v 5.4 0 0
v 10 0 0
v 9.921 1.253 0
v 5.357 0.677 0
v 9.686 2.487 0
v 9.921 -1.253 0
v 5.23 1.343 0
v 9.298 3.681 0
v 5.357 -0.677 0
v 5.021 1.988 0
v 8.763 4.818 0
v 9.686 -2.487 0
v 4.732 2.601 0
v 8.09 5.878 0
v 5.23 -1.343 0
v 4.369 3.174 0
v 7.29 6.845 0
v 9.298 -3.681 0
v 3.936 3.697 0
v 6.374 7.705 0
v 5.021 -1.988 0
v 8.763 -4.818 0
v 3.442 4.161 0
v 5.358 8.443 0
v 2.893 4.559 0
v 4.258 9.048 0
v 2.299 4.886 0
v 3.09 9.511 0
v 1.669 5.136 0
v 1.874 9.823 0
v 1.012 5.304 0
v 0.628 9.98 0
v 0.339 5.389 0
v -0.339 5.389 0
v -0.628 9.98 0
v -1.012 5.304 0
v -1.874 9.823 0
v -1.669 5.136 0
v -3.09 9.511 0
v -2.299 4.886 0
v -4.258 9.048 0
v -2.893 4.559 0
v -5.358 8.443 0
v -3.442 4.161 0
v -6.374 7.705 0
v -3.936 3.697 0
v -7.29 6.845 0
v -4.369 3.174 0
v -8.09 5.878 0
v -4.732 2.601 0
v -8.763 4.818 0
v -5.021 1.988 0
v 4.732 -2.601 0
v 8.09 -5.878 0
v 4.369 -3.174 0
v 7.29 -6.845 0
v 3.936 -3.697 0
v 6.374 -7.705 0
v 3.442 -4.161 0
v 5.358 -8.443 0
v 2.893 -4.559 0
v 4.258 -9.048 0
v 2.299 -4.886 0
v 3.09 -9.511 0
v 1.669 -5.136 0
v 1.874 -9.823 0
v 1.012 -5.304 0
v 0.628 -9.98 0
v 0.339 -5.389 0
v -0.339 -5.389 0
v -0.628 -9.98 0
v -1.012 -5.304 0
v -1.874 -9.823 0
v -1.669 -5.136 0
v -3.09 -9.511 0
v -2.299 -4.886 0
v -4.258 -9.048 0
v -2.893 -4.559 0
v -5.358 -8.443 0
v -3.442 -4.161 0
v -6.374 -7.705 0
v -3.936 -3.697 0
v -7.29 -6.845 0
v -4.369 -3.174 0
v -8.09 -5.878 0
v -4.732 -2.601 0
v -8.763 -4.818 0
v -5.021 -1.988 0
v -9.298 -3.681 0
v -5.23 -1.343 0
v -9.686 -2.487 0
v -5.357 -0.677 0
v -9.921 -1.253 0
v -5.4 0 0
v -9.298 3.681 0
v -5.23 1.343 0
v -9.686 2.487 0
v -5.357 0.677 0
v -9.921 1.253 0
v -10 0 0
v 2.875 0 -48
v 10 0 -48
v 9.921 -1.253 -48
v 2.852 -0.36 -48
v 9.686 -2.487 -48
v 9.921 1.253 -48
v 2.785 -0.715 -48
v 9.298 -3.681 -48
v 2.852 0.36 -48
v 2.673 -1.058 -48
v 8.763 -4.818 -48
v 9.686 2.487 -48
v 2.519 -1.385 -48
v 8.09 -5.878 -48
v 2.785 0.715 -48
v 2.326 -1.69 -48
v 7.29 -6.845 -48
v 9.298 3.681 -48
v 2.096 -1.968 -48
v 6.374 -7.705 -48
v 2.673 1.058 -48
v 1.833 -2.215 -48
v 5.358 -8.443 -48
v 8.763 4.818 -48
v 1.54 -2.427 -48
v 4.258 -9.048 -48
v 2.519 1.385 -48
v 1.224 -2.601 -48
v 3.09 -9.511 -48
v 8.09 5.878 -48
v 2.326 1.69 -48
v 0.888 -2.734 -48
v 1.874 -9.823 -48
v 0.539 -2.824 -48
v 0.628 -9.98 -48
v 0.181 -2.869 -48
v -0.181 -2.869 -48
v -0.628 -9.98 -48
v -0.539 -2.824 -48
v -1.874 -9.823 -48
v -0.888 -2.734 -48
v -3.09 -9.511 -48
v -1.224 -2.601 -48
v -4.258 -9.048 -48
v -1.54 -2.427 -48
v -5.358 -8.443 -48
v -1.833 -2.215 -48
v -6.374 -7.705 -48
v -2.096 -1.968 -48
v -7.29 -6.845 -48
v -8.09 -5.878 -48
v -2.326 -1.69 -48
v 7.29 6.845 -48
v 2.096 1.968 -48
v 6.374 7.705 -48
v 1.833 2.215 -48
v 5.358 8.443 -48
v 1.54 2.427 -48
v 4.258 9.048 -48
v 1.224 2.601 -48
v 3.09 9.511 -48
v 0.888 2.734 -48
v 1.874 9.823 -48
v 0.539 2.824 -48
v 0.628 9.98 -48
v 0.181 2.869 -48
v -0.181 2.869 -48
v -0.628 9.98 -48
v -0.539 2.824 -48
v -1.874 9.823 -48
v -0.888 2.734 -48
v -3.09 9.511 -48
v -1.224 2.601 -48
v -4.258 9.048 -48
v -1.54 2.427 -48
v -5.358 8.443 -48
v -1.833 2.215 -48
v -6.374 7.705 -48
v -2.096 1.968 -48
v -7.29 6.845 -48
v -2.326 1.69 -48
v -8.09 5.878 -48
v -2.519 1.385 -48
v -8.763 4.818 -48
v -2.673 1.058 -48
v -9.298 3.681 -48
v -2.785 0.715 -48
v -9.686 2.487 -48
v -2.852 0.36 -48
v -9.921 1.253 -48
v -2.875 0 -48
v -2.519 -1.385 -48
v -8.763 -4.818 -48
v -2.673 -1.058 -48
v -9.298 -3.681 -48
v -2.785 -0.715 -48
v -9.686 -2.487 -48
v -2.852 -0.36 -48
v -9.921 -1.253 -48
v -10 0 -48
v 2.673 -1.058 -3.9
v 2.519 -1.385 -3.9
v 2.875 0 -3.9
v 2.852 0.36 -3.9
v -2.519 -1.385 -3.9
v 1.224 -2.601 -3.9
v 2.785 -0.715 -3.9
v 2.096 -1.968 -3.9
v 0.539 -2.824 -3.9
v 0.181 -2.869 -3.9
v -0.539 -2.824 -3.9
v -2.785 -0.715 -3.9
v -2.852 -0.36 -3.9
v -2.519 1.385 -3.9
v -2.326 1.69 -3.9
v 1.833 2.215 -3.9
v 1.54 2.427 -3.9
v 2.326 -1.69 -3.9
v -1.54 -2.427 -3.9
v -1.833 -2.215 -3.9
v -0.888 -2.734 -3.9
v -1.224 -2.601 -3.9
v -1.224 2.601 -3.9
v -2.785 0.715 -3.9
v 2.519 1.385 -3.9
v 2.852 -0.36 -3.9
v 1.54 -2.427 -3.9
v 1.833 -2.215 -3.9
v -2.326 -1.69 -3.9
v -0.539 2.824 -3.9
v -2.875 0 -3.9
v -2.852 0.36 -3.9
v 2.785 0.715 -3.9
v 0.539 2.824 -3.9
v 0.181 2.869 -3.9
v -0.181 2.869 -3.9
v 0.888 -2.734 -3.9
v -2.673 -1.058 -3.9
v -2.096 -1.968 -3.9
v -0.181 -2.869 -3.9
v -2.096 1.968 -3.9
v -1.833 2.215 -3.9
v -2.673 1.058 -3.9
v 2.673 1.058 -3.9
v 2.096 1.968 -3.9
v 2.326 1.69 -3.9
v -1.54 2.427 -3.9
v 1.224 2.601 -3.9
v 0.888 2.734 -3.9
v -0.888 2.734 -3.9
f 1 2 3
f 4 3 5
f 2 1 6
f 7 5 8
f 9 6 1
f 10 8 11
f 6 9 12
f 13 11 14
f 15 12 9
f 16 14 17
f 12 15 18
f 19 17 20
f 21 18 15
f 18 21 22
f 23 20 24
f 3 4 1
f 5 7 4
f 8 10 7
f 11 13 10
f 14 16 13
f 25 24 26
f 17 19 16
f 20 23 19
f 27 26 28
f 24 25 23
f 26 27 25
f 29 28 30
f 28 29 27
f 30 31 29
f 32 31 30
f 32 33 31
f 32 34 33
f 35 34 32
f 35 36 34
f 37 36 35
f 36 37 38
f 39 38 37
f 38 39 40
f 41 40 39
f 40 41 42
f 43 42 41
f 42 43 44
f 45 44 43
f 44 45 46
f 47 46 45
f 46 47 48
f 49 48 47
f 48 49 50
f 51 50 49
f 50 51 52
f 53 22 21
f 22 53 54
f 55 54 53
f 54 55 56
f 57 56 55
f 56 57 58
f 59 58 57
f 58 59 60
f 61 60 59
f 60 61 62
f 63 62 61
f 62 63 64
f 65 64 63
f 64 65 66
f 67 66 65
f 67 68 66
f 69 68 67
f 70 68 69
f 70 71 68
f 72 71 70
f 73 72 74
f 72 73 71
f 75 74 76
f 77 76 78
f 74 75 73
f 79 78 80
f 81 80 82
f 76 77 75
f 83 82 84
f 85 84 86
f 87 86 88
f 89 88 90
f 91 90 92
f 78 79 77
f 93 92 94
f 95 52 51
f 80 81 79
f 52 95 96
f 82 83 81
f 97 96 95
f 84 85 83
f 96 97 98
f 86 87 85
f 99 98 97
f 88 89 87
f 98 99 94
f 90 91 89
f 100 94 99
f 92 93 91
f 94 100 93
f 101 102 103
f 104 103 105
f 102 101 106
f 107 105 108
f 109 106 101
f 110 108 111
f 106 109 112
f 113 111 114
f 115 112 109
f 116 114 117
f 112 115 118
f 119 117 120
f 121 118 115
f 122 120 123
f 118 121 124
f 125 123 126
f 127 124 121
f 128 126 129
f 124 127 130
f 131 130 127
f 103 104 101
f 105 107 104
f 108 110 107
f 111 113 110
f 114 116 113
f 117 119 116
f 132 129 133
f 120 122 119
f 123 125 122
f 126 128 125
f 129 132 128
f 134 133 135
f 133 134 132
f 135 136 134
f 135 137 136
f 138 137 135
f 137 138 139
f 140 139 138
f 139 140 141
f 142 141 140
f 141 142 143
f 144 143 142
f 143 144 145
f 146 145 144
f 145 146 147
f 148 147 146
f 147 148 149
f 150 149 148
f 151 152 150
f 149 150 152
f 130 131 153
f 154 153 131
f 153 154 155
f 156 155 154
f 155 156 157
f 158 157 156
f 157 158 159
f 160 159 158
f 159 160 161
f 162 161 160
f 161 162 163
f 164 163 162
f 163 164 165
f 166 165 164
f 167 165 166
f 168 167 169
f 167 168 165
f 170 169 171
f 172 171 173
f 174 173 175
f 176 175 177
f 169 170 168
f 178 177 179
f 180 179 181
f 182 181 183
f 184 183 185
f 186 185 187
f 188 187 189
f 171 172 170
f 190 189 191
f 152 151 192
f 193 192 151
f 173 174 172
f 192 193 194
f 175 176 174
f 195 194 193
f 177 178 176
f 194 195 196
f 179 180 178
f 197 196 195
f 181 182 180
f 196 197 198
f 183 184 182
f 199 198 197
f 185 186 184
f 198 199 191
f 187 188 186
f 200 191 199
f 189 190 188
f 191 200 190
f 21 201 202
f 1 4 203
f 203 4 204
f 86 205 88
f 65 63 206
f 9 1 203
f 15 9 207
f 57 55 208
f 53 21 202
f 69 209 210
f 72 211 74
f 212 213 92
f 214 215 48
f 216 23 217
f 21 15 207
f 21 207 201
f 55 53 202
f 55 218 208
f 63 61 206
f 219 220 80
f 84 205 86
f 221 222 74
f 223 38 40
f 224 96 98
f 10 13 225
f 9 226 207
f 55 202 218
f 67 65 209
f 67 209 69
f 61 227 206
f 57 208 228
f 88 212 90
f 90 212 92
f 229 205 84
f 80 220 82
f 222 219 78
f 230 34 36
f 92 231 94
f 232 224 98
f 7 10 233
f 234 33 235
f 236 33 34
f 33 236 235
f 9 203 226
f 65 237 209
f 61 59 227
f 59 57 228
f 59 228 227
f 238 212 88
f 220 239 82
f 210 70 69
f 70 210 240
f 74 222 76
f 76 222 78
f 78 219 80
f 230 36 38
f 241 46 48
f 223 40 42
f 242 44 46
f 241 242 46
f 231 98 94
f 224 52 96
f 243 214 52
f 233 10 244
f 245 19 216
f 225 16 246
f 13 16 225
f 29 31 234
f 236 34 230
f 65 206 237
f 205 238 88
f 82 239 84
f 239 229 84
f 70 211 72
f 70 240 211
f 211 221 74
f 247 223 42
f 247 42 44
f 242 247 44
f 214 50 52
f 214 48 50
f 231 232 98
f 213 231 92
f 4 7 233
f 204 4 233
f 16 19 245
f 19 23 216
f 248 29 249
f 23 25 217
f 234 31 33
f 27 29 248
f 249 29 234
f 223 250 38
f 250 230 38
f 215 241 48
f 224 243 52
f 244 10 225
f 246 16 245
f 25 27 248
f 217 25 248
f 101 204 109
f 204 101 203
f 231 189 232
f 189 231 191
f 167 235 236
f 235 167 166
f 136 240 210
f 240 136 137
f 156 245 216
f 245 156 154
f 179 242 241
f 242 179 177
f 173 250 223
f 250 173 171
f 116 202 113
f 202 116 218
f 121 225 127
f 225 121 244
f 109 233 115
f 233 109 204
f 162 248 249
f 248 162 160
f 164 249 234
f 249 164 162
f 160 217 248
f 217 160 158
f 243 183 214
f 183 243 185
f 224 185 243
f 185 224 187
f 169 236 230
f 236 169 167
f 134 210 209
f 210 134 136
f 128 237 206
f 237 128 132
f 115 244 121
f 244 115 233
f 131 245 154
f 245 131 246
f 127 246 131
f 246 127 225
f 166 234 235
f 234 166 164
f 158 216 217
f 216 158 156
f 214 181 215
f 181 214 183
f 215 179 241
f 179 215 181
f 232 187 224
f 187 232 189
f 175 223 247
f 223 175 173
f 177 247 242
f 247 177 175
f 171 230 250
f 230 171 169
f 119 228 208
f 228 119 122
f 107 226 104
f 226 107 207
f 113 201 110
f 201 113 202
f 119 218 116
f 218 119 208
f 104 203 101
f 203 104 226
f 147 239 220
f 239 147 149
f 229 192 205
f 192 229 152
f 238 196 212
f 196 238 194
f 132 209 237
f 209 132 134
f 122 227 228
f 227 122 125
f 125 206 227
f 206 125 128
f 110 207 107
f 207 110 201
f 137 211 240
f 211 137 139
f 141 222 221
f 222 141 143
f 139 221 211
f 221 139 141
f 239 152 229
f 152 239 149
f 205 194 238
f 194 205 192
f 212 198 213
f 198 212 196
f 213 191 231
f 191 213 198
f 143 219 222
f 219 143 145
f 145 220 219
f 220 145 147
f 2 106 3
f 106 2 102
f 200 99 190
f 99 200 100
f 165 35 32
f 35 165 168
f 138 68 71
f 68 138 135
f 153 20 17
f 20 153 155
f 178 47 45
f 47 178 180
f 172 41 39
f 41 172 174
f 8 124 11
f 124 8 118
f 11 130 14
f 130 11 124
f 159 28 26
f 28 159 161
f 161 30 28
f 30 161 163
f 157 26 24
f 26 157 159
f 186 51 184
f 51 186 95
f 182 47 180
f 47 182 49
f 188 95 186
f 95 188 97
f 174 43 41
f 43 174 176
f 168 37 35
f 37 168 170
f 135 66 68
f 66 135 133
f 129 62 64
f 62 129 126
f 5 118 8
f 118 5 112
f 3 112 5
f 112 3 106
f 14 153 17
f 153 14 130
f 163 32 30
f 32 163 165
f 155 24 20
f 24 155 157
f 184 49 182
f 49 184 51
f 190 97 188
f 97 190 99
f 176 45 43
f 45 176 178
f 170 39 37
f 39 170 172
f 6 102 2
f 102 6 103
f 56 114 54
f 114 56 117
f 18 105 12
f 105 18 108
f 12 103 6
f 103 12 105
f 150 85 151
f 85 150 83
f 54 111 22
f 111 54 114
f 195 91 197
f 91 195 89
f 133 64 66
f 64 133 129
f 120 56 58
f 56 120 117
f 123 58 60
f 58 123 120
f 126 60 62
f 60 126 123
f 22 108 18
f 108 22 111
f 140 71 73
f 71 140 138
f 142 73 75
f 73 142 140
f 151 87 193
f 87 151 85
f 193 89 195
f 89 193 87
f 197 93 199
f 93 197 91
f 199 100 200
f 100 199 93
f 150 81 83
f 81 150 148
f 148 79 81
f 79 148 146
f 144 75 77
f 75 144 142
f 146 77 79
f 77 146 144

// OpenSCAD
$fn = 50;


difference() {
	union() {
		translate(v = [0, 0, -48.0000000000]) {
			cylinder(h = 48, r = 10.0000000000);
		}
		cylinder(h = 0, r = 20.0000000000);
	}
	union() {
		translate(v = [0, 0, 0]) {
			rotate(a = [0, 0, 0]) {
				difference() {
					union() {
						#translate(v = [0, 0, -48.0000000000]) {
							cylinder(h = 48, r = 2.6000000000);
						}
						#translate(v = [0, 0, -3.9000000000]) {
							cylinder(h = 3.9000000000, r1 = 2.8750000000, r2 = 5.4000000000);
						}
						#translate(v = [0, 0, -48.0000000000]) {
							cylinder(h = 48, r = 2.8750000000);
						}
						#translate(v = [0, 0, -48.0000000000]) {
							cylinder(h = 48, r = 2.6000000000);
						}
					}
					union();
				}
			}
		}
	}
}
